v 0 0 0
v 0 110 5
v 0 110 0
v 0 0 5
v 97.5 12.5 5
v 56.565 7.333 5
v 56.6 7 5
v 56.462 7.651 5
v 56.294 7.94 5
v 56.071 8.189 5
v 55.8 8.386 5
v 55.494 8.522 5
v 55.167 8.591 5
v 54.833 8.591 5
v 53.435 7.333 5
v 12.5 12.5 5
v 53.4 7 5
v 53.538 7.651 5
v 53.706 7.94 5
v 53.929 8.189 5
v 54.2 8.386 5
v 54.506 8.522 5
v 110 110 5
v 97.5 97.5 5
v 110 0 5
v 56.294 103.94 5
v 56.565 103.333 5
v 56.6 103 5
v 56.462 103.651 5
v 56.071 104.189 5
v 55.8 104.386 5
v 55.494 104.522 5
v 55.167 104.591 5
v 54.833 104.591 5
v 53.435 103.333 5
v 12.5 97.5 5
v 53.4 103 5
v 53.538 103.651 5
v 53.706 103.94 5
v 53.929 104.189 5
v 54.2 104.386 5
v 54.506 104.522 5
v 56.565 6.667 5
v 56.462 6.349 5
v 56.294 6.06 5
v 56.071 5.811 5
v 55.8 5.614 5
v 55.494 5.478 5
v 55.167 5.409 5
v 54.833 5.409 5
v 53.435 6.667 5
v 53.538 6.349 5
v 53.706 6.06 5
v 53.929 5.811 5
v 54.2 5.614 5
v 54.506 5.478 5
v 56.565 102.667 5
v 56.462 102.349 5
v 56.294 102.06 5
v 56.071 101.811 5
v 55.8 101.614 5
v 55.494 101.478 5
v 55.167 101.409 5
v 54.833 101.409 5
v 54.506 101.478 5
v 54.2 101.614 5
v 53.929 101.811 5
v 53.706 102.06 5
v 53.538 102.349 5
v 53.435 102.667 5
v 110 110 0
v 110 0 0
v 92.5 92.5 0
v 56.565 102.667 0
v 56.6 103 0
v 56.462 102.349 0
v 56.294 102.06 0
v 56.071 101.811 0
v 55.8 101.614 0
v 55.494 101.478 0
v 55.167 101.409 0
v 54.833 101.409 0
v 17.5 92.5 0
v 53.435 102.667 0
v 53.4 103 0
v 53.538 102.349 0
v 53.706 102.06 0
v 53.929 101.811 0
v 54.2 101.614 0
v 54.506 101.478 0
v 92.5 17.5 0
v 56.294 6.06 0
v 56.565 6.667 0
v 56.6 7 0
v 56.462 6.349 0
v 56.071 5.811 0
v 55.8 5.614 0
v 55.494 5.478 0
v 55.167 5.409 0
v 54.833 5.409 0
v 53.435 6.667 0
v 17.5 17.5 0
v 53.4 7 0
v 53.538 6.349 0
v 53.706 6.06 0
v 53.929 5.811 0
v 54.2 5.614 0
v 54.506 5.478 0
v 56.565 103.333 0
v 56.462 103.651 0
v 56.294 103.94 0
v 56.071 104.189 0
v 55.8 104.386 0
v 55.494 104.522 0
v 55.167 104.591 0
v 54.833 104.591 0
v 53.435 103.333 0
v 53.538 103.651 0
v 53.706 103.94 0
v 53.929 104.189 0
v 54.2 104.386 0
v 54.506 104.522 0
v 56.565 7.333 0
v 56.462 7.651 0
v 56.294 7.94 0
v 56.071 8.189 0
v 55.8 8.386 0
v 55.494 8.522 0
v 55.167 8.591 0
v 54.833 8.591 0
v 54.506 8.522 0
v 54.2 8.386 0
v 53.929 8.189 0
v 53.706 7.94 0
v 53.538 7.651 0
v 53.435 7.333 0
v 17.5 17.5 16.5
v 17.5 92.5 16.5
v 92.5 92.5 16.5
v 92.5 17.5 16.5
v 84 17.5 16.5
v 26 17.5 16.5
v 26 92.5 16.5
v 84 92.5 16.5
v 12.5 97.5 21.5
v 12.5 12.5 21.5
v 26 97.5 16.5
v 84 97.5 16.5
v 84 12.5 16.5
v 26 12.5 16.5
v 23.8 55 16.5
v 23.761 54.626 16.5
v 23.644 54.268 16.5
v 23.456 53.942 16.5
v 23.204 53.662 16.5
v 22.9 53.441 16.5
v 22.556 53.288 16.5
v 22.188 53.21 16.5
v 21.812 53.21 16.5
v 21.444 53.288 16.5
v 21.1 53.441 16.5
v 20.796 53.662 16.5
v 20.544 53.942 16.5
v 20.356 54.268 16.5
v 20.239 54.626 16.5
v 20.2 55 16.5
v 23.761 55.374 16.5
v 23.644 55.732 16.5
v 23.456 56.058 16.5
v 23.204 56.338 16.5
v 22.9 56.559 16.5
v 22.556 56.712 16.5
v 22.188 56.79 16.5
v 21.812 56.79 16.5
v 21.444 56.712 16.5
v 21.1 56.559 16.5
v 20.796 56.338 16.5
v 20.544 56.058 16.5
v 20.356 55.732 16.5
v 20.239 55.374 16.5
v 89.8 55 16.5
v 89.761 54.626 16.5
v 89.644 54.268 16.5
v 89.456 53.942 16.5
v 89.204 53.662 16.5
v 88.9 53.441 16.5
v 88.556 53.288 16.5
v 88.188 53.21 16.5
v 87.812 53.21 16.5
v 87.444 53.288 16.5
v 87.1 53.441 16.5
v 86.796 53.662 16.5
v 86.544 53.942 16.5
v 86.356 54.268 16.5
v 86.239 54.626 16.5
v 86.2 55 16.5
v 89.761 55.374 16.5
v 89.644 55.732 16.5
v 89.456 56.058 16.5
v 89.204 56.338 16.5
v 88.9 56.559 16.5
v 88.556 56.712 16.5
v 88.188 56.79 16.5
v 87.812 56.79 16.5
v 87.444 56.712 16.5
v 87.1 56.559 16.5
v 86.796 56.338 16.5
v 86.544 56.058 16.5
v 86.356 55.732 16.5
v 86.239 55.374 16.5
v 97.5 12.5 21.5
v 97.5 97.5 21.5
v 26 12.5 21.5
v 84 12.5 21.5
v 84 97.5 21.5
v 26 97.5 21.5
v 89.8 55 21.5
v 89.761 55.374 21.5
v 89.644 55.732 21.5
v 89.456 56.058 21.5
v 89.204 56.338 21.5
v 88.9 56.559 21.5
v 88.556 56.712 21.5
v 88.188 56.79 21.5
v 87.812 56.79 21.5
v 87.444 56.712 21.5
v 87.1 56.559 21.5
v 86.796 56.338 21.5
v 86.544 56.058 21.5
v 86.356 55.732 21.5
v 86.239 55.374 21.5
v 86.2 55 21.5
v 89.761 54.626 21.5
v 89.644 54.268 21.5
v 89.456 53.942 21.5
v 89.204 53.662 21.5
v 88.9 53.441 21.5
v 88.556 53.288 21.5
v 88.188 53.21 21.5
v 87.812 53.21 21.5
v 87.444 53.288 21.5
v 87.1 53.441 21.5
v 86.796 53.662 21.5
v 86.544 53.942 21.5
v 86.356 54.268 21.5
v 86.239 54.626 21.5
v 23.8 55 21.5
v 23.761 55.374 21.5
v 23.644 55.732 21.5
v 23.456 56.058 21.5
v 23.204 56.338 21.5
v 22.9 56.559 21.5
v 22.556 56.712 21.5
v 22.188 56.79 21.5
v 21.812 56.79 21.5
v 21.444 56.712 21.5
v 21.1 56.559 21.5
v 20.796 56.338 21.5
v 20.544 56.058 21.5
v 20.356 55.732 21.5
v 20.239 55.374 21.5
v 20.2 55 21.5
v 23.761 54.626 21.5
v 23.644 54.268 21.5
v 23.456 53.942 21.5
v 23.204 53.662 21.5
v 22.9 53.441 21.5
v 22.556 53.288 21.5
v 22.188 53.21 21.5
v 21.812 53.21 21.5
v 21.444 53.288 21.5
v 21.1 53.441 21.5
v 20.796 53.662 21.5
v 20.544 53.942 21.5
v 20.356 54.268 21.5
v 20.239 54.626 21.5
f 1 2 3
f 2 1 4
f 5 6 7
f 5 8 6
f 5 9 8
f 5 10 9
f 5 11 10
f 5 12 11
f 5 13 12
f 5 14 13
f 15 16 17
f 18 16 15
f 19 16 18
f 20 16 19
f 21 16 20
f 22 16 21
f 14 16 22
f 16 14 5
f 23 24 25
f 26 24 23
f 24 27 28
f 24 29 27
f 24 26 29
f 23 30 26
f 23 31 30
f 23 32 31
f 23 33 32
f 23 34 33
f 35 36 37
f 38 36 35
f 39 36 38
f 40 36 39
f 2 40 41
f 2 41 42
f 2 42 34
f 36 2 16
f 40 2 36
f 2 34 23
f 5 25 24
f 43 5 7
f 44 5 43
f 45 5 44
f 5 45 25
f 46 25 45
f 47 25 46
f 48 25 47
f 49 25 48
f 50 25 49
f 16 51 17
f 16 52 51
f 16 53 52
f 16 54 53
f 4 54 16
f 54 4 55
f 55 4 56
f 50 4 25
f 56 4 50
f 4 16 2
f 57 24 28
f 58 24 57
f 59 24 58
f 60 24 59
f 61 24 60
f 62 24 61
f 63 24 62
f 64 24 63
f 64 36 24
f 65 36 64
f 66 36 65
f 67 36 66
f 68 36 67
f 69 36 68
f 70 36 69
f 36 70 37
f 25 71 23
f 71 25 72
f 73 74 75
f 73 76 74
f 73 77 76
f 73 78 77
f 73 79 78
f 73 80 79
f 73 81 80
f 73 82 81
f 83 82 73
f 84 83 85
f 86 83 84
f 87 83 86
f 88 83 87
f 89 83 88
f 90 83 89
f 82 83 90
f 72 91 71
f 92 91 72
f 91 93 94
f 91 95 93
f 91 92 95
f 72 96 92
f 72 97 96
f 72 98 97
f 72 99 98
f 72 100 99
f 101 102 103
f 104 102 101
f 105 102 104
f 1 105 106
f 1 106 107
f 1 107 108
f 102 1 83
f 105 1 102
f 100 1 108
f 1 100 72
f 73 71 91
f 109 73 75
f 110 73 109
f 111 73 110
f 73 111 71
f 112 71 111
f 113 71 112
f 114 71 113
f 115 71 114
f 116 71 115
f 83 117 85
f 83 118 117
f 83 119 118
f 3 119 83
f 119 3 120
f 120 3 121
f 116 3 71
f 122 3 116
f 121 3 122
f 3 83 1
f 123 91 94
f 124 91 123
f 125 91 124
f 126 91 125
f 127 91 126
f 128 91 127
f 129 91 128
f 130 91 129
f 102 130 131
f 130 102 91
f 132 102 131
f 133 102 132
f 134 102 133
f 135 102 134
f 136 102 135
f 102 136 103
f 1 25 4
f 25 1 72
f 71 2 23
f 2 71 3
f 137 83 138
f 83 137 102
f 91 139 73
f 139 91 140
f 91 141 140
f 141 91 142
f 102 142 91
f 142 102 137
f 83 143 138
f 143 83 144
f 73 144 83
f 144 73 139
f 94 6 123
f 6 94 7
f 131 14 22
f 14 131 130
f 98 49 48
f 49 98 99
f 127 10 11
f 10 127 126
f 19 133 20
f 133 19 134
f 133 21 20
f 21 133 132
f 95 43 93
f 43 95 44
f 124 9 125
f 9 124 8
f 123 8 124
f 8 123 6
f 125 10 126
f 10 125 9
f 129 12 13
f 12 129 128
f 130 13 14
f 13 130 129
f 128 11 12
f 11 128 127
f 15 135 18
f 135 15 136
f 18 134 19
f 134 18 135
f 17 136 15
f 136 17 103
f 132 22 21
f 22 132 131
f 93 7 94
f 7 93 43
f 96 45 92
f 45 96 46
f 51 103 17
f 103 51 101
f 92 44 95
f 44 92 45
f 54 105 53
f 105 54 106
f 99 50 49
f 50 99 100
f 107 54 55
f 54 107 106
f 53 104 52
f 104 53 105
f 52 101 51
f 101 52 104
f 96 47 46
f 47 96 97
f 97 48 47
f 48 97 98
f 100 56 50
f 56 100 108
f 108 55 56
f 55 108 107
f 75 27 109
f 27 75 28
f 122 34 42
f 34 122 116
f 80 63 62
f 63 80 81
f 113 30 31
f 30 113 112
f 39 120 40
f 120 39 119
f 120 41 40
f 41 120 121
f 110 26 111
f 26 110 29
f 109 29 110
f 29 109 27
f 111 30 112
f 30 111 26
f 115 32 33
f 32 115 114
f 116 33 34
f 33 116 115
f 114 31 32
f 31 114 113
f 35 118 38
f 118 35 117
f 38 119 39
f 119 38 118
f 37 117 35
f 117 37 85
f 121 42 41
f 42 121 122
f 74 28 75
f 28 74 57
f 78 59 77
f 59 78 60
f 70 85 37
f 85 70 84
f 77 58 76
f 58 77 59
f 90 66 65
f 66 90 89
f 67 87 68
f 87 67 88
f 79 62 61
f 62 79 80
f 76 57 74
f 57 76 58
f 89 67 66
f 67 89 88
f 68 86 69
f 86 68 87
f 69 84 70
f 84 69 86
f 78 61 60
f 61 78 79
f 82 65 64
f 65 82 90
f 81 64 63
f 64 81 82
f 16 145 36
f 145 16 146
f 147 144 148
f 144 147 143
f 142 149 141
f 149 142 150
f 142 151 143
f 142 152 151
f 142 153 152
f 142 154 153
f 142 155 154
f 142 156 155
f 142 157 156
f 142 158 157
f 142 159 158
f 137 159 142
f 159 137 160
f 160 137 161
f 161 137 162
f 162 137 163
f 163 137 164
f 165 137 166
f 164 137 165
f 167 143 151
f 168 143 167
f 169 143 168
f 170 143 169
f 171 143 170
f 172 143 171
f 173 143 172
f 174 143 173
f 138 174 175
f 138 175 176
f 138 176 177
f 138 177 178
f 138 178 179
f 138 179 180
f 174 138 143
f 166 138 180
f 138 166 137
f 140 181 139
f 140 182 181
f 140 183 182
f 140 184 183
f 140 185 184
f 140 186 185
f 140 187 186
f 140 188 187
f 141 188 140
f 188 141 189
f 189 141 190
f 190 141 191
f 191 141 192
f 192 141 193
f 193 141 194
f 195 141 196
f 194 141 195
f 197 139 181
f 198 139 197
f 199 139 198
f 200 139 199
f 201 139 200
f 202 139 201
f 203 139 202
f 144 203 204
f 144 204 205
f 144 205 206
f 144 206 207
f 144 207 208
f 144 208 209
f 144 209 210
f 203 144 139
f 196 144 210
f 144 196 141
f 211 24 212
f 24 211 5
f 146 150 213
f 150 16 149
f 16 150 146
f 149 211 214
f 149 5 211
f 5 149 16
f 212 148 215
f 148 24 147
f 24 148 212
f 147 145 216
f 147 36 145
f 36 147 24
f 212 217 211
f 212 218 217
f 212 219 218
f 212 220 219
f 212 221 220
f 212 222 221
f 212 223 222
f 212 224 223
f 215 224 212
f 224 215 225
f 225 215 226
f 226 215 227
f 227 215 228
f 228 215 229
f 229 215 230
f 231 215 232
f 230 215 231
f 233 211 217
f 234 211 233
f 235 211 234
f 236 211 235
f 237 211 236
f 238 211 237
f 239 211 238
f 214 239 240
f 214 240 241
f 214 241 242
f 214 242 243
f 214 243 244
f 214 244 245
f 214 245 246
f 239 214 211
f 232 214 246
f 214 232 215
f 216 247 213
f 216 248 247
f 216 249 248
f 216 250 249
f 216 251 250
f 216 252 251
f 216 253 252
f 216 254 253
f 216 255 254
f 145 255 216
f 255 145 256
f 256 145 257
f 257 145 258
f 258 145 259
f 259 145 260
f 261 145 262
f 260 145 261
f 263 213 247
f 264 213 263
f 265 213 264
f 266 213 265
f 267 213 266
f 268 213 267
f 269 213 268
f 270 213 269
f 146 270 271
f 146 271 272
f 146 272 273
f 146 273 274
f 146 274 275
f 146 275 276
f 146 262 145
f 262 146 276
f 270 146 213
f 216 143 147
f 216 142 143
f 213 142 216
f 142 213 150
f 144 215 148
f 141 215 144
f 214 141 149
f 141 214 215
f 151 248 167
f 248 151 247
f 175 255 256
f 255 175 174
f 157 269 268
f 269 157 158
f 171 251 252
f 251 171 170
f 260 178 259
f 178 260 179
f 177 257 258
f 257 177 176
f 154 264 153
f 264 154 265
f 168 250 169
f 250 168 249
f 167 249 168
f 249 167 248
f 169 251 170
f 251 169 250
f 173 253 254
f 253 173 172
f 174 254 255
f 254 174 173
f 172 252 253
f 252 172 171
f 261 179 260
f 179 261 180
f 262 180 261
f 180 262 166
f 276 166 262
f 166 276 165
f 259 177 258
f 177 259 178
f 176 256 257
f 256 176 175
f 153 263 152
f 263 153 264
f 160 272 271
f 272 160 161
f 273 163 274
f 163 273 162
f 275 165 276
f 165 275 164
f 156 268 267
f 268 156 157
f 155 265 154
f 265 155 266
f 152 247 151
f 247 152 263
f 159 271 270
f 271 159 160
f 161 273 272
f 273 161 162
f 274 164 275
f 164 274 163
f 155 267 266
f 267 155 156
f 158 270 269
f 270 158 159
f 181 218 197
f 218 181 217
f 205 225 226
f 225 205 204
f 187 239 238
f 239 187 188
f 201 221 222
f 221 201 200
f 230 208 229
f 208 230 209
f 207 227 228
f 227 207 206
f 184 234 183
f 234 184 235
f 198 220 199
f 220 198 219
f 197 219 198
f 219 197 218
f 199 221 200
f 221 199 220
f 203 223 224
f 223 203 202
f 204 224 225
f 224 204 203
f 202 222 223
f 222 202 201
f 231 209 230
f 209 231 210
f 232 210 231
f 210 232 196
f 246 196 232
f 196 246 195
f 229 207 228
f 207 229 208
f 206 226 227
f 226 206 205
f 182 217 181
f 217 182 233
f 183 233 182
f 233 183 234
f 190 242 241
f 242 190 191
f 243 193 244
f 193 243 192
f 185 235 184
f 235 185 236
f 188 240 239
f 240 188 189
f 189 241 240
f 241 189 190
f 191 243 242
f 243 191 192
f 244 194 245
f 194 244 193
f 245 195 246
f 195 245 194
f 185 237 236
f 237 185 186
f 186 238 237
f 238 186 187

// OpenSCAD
// ==== Scanner parameters ====
speaker_w = 58;        // Width
speaker_h = 58;        // Height

plate_w = 110;        // Width
plate_h = 110;        // Height
plate_thick = 5;        // Plate thickness

//scanner_d = 100;         // Depth
tab_offset = 7;         // Distance from edge to tab center (estimate! Measure yours if you can)
tab_dia = 3.6;          // This is a hole for ear
mount_dia = 3.2;        // Mounting hole diameter (estimate! Use caliper if you have one)

win_w = 75;             // Window width (measure the actual speaker if possible)
win_h = 75;             // Window height (measure the actual speaker if possible)
window_position_x = (plate_w - win_w) / 2;
window_position_y = (plate_h - win_h) / 2;

front_of_speaker_to_ear = 13.5;

layer2_x = 12.5;
layer2_y = layer2_x;
layer2_depth = 3;

inner_hole_from_edge = 4.5;

difference() {
    // --- Main plate ---
    cube([plate_w, plate_h, plate_thick]);
    
    // --- speaker window ---
    // Centered window, adjust as needed for your module!
    translate([window_position_x, window_position_y, -1])
        cube([win_w, win_h, plate_thick + 2]);
    
    // --- Mounting holes (2 outer) ---
    translate([plate_w / 2, 7, -1])
        cylinder(d = mount_dia, h = plate_thick + 99, $fn = 30);
    translate([plate_h / 2, plate_w - 7, -1])
        cylinder(d = mount_dia, h = plate_thick + 99, $fn = 30);
}

difference() {
    translate([layer2_x, layer2_y, layer2_depth])
        cube([win_w + 10, win_h + 10, front_of_speaker_to_ear]);
    
    translate([layer2_x + 5, layer2_y + 5, layer2_depth - 1])
        cube([win_w, win_h, front_of_speaker_to_ear + 2]);
}

difference() {
    translate([layer2_x, layer2_y, front_of_speaker_to_ear + layer2_depth])
        cube([win_w + 10, win_h + 10, 5]);
    
    translate([layer2_x + 13.5, 0 , (front_of_speaker_to_ear + layer2_depth) - 1])
        cube([speaker_w, speaker_h + 50, 5 + 2]);
    
    // --- Mounting holes (2 inner) ---
    translate([layer2_x + 14 - inner_hole_from_edge, plate_w / 2, -1])
        cylinder(d = tab_dia, h = layer2_depth + 99, $fn = 30);
    translate([speaker_w + layer2_x + 13 + inner_hole_from_edge, plate_w / 2, -1])
        cylinder(d = tab_dia, h = layer2_depth + 99, $fn = 30);
}
